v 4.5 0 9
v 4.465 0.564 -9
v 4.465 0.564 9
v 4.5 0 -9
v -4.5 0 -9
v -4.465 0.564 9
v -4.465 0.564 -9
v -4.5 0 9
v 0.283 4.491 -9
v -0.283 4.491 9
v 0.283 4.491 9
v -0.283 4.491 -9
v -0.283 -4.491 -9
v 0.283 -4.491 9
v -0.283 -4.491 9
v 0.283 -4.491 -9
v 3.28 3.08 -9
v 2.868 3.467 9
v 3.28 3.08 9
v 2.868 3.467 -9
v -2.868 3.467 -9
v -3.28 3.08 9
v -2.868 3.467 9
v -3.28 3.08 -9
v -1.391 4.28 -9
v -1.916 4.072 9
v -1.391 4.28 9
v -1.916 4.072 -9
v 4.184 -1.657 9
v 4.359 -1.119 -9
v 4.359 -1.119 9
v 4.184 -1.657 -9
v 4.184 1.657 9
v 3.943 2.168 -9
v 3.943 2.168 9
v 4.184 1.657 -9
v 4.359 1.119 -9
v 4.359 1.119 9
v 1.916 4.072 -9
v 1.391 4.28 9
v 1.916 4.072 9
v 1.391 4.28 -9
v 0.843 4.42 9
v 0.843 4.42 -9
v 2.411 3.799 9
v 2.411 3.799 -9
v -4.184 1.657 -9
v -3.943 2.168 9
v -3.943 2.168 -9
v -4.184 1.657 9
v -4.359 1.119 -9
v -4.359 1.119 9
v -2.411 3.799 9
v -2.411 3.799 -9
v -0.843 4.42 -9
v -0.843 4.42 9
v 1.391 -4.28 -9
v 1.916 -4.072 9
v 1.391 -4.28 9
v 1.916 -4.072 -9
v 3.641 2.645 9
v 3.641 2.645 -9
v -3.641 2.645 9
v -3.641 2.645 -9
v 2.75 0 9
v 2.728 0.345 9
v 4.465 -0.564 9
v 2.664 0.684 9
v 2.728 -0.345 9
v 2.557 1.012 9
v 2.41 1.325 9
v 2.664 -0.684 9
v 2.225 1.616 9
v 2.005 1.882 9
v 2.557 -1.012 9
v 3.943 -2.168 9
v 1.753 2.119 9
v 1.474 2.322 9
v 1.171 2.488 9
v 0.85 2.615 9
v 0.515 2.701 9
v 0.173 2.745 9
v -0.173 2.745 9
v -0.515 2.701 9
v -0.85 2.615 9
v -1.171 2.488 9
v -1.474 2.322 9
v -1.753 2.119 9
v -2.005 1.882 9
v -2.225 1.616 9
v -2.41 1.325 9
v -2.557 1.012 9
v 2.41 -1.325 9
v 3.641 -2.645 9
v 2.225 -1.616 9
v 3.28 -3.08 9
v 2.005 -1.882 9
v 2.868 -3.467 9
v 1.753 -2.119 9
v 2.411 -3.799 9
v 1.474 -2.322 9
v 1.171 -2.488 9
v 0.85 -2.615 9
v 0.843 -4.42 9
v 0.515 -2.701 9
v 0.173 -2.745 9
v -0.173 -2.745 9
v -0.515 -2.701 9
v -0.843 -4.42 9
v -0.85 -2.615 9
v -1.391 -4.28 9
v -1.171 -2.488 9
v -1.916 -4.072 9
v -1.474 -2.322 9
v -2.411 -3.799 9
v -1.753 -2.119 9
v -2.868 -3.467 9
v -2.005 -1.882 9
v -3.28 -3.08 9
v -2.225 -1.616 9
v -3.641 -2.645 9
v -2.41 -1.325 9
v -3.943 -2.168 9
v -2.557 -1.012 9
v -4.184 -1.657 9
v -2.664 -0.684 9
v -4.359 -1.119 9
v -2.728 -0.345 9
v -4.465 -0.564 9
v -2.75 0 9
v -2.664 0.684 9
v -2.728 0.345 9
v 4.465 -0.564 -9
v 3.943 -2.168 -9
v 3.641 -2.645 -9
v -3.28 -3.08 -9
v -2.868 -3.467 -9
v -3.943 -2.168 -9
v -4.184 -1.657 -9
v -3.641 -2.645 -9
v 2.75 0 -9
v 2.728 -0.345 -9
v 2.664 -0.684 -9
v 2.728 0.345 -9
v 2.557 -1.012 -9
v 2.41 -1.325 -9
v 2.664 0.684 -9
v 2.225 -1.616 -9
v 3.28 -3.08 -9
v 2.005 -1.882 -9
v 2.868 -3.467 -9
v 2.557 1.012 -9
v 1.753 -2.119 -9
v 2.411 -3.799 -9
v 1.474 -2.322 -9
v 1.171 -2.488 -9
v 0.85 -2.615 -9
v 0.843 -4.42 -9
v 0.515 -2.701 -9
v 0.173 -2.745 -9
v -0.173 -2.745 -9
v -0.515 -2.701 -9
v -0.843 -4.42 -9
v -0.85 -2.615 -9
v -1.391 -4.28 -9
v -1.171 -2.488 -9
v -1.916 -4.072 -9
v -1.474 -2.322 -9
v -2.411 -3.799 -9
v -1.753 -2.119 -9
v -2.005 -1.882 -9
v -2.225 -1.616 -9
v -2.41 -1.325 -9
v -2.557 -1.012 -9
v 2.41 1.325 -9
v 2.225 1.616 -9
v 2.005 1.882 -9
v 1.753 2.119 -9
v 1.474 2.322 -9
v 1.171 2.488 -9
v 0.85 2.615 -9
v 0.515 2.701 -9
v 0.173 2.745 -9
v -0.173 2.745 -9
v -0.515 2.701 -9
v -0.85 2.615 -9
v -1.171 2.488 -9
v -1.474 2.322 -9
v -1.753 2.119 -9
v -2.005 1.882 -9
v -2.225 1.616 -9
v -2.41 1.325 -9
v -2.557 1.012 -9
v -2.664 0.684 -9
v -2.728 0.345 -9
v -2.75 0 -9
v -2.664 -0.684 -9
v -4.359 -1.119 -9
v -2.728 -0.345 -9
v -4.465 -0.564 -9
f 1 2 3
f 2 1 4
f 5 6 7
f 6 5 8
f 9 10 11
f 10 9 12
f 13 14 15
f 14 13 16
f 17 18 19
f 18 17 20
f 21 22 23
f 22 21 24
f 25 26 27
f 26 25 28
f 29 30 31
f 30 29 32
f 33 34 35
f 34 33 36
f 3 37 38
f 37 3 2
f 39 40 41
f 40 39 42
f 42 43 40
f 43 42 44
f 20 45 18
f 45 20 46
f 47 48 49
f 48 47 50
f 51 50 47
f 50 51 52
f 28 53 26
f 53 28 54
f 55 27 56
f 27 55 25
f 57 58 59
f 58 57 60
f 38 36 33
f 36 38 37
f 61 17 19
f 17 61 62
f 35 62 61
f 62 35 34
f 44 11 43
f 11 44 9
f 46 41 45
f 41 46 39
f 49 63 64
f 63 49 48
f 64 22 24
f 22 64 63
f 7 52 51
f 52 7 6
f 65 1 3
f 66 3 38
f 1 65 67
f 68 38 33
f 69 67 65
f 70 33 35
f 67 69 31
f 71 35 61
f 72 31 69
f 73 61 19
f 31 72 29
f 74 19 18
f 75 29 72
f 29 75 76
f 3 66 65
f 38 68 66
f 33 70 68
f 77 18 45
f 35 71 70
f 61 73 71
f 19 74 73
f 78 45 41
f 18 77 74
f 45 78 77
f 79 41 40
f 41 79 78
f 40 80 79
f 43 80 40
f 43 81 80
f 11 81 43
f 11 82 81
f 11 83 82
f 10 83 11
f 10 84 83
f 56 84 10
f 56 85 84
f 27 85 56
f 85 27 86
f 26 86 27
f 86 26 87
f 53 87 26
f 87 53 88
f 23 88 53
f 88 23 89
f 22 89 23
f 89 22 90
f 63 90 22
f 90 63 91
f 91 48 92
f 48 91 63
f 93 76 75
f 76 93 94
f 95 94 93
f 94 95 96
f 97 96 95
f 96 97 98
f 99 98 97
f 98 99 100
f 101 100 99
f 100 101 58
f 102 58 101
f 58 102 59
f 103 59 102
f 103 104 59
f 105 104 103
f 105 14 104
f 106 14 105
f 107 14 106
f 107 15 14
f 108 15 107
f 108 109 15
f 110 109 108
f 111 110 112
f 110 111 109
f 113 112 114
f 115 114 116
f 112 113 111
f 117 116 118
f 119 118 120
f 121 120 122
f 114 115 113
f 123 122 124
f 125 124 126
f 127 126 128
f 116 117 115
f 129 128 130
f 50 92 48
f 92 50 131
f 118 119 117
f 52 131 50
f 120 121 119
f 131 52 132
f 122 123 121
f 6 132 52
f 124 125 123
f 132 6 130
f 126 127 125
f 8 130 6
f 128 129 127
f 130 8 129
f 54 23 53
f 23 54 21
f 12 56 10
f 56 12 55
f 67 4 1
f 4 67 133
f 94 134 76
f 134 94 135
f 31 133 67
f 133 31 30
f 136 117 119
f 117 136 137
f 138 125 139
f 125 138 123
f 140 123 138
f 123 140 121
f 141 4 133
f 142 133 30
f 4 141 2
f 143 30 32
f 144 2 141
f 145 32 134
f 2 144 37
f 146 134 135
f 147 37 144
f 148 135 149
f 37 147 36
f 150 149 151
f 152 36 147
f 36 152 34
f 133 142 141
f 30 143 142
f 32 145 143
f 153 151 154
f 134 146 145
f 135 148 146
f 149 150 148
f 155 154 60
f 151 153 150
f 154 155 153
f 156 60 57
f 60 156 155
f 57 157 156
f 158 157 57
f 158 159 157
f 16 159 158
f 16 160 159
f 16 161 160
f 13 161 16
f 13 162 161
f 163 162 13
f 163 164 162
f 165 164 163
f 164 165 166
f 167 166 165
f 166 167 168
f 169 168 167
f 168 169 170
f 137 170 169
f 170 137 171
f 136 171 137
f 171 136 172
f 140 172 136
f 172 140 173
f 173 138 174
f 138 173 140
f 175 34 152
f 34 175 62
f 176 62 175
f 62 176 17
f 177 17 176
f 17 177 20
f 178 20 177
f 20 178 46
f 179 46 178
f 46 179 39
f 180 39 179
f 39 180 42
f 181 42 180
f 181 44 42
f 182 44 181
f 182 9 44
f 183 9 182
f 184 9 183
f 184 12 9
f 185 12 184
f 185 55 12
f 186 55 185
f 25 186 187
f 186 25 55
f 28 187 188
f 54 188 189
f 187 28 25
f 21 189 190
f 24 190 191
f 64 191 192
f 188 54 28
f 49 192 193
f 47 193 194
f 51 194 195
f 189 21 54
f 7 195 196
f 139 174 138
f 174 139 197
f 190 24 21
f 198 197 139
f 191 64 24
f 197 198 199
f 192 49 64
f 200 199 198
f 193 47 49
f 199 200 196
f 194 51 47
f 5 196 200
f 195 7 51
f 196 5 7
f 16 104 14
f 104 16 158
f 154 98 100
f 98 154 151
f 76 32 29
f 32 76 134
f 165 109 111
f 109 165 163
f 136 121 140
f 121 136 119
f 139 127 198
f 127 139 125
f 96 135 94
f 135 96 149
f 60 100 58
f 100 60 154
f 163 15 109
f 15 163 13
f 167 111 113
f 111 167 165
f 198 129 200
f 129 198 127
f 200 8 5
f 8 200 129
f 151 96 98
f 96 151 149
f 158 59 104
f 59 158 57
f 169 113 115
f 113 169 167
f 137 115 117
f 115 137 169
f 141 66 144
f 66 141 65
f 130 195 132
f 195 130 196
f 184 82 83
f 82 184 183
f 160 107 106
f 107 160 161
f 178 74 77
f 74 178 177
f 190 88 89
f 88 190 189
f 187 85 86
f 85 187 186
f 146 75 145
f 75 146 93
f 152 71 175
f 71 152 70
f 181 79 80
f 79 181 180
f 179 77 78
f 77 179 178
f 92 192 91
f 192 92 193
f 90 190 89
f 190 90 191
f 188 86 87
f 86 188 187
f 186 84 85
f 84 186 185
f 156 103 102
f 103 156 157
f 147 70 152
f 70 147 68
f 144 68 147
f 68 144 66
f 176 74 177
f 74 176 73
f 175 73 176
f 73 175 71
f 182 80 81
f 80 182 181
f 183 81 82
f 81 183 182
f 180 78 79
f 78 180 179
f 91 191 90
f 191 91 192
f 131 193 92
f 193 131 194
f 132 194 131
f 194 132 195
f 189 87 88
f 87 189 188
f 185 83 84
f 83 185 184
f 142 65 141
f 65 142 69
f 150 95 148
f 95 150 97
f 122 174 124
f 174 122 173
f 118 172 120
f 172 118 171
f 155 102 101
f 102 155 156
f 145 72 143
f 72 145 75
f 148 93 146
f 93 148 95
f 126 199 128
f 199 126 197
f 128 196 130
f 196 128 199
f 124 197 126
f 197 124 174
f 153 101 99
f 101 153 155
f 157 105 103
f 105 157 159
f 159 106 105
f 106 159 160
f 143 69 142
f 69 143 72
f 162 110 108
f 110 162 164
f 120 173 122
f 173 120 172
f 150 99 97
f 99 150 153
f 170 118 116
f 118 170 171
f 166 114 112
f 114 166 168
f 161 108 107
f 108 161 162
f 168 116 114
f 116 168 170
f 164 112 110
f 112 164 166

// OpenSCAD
$fn = 50;


difference() {
	union() {
		translate(v = [0, 0, -9.0000000000]) {
			cylinder(h = 18, r = 4.5000000000);
		}
	}
	union() {
		translate(v = [0, 0, -100.0000000000]) {
			cylinder(h = 200, r = 2.7500000000);
		}
	}
}
